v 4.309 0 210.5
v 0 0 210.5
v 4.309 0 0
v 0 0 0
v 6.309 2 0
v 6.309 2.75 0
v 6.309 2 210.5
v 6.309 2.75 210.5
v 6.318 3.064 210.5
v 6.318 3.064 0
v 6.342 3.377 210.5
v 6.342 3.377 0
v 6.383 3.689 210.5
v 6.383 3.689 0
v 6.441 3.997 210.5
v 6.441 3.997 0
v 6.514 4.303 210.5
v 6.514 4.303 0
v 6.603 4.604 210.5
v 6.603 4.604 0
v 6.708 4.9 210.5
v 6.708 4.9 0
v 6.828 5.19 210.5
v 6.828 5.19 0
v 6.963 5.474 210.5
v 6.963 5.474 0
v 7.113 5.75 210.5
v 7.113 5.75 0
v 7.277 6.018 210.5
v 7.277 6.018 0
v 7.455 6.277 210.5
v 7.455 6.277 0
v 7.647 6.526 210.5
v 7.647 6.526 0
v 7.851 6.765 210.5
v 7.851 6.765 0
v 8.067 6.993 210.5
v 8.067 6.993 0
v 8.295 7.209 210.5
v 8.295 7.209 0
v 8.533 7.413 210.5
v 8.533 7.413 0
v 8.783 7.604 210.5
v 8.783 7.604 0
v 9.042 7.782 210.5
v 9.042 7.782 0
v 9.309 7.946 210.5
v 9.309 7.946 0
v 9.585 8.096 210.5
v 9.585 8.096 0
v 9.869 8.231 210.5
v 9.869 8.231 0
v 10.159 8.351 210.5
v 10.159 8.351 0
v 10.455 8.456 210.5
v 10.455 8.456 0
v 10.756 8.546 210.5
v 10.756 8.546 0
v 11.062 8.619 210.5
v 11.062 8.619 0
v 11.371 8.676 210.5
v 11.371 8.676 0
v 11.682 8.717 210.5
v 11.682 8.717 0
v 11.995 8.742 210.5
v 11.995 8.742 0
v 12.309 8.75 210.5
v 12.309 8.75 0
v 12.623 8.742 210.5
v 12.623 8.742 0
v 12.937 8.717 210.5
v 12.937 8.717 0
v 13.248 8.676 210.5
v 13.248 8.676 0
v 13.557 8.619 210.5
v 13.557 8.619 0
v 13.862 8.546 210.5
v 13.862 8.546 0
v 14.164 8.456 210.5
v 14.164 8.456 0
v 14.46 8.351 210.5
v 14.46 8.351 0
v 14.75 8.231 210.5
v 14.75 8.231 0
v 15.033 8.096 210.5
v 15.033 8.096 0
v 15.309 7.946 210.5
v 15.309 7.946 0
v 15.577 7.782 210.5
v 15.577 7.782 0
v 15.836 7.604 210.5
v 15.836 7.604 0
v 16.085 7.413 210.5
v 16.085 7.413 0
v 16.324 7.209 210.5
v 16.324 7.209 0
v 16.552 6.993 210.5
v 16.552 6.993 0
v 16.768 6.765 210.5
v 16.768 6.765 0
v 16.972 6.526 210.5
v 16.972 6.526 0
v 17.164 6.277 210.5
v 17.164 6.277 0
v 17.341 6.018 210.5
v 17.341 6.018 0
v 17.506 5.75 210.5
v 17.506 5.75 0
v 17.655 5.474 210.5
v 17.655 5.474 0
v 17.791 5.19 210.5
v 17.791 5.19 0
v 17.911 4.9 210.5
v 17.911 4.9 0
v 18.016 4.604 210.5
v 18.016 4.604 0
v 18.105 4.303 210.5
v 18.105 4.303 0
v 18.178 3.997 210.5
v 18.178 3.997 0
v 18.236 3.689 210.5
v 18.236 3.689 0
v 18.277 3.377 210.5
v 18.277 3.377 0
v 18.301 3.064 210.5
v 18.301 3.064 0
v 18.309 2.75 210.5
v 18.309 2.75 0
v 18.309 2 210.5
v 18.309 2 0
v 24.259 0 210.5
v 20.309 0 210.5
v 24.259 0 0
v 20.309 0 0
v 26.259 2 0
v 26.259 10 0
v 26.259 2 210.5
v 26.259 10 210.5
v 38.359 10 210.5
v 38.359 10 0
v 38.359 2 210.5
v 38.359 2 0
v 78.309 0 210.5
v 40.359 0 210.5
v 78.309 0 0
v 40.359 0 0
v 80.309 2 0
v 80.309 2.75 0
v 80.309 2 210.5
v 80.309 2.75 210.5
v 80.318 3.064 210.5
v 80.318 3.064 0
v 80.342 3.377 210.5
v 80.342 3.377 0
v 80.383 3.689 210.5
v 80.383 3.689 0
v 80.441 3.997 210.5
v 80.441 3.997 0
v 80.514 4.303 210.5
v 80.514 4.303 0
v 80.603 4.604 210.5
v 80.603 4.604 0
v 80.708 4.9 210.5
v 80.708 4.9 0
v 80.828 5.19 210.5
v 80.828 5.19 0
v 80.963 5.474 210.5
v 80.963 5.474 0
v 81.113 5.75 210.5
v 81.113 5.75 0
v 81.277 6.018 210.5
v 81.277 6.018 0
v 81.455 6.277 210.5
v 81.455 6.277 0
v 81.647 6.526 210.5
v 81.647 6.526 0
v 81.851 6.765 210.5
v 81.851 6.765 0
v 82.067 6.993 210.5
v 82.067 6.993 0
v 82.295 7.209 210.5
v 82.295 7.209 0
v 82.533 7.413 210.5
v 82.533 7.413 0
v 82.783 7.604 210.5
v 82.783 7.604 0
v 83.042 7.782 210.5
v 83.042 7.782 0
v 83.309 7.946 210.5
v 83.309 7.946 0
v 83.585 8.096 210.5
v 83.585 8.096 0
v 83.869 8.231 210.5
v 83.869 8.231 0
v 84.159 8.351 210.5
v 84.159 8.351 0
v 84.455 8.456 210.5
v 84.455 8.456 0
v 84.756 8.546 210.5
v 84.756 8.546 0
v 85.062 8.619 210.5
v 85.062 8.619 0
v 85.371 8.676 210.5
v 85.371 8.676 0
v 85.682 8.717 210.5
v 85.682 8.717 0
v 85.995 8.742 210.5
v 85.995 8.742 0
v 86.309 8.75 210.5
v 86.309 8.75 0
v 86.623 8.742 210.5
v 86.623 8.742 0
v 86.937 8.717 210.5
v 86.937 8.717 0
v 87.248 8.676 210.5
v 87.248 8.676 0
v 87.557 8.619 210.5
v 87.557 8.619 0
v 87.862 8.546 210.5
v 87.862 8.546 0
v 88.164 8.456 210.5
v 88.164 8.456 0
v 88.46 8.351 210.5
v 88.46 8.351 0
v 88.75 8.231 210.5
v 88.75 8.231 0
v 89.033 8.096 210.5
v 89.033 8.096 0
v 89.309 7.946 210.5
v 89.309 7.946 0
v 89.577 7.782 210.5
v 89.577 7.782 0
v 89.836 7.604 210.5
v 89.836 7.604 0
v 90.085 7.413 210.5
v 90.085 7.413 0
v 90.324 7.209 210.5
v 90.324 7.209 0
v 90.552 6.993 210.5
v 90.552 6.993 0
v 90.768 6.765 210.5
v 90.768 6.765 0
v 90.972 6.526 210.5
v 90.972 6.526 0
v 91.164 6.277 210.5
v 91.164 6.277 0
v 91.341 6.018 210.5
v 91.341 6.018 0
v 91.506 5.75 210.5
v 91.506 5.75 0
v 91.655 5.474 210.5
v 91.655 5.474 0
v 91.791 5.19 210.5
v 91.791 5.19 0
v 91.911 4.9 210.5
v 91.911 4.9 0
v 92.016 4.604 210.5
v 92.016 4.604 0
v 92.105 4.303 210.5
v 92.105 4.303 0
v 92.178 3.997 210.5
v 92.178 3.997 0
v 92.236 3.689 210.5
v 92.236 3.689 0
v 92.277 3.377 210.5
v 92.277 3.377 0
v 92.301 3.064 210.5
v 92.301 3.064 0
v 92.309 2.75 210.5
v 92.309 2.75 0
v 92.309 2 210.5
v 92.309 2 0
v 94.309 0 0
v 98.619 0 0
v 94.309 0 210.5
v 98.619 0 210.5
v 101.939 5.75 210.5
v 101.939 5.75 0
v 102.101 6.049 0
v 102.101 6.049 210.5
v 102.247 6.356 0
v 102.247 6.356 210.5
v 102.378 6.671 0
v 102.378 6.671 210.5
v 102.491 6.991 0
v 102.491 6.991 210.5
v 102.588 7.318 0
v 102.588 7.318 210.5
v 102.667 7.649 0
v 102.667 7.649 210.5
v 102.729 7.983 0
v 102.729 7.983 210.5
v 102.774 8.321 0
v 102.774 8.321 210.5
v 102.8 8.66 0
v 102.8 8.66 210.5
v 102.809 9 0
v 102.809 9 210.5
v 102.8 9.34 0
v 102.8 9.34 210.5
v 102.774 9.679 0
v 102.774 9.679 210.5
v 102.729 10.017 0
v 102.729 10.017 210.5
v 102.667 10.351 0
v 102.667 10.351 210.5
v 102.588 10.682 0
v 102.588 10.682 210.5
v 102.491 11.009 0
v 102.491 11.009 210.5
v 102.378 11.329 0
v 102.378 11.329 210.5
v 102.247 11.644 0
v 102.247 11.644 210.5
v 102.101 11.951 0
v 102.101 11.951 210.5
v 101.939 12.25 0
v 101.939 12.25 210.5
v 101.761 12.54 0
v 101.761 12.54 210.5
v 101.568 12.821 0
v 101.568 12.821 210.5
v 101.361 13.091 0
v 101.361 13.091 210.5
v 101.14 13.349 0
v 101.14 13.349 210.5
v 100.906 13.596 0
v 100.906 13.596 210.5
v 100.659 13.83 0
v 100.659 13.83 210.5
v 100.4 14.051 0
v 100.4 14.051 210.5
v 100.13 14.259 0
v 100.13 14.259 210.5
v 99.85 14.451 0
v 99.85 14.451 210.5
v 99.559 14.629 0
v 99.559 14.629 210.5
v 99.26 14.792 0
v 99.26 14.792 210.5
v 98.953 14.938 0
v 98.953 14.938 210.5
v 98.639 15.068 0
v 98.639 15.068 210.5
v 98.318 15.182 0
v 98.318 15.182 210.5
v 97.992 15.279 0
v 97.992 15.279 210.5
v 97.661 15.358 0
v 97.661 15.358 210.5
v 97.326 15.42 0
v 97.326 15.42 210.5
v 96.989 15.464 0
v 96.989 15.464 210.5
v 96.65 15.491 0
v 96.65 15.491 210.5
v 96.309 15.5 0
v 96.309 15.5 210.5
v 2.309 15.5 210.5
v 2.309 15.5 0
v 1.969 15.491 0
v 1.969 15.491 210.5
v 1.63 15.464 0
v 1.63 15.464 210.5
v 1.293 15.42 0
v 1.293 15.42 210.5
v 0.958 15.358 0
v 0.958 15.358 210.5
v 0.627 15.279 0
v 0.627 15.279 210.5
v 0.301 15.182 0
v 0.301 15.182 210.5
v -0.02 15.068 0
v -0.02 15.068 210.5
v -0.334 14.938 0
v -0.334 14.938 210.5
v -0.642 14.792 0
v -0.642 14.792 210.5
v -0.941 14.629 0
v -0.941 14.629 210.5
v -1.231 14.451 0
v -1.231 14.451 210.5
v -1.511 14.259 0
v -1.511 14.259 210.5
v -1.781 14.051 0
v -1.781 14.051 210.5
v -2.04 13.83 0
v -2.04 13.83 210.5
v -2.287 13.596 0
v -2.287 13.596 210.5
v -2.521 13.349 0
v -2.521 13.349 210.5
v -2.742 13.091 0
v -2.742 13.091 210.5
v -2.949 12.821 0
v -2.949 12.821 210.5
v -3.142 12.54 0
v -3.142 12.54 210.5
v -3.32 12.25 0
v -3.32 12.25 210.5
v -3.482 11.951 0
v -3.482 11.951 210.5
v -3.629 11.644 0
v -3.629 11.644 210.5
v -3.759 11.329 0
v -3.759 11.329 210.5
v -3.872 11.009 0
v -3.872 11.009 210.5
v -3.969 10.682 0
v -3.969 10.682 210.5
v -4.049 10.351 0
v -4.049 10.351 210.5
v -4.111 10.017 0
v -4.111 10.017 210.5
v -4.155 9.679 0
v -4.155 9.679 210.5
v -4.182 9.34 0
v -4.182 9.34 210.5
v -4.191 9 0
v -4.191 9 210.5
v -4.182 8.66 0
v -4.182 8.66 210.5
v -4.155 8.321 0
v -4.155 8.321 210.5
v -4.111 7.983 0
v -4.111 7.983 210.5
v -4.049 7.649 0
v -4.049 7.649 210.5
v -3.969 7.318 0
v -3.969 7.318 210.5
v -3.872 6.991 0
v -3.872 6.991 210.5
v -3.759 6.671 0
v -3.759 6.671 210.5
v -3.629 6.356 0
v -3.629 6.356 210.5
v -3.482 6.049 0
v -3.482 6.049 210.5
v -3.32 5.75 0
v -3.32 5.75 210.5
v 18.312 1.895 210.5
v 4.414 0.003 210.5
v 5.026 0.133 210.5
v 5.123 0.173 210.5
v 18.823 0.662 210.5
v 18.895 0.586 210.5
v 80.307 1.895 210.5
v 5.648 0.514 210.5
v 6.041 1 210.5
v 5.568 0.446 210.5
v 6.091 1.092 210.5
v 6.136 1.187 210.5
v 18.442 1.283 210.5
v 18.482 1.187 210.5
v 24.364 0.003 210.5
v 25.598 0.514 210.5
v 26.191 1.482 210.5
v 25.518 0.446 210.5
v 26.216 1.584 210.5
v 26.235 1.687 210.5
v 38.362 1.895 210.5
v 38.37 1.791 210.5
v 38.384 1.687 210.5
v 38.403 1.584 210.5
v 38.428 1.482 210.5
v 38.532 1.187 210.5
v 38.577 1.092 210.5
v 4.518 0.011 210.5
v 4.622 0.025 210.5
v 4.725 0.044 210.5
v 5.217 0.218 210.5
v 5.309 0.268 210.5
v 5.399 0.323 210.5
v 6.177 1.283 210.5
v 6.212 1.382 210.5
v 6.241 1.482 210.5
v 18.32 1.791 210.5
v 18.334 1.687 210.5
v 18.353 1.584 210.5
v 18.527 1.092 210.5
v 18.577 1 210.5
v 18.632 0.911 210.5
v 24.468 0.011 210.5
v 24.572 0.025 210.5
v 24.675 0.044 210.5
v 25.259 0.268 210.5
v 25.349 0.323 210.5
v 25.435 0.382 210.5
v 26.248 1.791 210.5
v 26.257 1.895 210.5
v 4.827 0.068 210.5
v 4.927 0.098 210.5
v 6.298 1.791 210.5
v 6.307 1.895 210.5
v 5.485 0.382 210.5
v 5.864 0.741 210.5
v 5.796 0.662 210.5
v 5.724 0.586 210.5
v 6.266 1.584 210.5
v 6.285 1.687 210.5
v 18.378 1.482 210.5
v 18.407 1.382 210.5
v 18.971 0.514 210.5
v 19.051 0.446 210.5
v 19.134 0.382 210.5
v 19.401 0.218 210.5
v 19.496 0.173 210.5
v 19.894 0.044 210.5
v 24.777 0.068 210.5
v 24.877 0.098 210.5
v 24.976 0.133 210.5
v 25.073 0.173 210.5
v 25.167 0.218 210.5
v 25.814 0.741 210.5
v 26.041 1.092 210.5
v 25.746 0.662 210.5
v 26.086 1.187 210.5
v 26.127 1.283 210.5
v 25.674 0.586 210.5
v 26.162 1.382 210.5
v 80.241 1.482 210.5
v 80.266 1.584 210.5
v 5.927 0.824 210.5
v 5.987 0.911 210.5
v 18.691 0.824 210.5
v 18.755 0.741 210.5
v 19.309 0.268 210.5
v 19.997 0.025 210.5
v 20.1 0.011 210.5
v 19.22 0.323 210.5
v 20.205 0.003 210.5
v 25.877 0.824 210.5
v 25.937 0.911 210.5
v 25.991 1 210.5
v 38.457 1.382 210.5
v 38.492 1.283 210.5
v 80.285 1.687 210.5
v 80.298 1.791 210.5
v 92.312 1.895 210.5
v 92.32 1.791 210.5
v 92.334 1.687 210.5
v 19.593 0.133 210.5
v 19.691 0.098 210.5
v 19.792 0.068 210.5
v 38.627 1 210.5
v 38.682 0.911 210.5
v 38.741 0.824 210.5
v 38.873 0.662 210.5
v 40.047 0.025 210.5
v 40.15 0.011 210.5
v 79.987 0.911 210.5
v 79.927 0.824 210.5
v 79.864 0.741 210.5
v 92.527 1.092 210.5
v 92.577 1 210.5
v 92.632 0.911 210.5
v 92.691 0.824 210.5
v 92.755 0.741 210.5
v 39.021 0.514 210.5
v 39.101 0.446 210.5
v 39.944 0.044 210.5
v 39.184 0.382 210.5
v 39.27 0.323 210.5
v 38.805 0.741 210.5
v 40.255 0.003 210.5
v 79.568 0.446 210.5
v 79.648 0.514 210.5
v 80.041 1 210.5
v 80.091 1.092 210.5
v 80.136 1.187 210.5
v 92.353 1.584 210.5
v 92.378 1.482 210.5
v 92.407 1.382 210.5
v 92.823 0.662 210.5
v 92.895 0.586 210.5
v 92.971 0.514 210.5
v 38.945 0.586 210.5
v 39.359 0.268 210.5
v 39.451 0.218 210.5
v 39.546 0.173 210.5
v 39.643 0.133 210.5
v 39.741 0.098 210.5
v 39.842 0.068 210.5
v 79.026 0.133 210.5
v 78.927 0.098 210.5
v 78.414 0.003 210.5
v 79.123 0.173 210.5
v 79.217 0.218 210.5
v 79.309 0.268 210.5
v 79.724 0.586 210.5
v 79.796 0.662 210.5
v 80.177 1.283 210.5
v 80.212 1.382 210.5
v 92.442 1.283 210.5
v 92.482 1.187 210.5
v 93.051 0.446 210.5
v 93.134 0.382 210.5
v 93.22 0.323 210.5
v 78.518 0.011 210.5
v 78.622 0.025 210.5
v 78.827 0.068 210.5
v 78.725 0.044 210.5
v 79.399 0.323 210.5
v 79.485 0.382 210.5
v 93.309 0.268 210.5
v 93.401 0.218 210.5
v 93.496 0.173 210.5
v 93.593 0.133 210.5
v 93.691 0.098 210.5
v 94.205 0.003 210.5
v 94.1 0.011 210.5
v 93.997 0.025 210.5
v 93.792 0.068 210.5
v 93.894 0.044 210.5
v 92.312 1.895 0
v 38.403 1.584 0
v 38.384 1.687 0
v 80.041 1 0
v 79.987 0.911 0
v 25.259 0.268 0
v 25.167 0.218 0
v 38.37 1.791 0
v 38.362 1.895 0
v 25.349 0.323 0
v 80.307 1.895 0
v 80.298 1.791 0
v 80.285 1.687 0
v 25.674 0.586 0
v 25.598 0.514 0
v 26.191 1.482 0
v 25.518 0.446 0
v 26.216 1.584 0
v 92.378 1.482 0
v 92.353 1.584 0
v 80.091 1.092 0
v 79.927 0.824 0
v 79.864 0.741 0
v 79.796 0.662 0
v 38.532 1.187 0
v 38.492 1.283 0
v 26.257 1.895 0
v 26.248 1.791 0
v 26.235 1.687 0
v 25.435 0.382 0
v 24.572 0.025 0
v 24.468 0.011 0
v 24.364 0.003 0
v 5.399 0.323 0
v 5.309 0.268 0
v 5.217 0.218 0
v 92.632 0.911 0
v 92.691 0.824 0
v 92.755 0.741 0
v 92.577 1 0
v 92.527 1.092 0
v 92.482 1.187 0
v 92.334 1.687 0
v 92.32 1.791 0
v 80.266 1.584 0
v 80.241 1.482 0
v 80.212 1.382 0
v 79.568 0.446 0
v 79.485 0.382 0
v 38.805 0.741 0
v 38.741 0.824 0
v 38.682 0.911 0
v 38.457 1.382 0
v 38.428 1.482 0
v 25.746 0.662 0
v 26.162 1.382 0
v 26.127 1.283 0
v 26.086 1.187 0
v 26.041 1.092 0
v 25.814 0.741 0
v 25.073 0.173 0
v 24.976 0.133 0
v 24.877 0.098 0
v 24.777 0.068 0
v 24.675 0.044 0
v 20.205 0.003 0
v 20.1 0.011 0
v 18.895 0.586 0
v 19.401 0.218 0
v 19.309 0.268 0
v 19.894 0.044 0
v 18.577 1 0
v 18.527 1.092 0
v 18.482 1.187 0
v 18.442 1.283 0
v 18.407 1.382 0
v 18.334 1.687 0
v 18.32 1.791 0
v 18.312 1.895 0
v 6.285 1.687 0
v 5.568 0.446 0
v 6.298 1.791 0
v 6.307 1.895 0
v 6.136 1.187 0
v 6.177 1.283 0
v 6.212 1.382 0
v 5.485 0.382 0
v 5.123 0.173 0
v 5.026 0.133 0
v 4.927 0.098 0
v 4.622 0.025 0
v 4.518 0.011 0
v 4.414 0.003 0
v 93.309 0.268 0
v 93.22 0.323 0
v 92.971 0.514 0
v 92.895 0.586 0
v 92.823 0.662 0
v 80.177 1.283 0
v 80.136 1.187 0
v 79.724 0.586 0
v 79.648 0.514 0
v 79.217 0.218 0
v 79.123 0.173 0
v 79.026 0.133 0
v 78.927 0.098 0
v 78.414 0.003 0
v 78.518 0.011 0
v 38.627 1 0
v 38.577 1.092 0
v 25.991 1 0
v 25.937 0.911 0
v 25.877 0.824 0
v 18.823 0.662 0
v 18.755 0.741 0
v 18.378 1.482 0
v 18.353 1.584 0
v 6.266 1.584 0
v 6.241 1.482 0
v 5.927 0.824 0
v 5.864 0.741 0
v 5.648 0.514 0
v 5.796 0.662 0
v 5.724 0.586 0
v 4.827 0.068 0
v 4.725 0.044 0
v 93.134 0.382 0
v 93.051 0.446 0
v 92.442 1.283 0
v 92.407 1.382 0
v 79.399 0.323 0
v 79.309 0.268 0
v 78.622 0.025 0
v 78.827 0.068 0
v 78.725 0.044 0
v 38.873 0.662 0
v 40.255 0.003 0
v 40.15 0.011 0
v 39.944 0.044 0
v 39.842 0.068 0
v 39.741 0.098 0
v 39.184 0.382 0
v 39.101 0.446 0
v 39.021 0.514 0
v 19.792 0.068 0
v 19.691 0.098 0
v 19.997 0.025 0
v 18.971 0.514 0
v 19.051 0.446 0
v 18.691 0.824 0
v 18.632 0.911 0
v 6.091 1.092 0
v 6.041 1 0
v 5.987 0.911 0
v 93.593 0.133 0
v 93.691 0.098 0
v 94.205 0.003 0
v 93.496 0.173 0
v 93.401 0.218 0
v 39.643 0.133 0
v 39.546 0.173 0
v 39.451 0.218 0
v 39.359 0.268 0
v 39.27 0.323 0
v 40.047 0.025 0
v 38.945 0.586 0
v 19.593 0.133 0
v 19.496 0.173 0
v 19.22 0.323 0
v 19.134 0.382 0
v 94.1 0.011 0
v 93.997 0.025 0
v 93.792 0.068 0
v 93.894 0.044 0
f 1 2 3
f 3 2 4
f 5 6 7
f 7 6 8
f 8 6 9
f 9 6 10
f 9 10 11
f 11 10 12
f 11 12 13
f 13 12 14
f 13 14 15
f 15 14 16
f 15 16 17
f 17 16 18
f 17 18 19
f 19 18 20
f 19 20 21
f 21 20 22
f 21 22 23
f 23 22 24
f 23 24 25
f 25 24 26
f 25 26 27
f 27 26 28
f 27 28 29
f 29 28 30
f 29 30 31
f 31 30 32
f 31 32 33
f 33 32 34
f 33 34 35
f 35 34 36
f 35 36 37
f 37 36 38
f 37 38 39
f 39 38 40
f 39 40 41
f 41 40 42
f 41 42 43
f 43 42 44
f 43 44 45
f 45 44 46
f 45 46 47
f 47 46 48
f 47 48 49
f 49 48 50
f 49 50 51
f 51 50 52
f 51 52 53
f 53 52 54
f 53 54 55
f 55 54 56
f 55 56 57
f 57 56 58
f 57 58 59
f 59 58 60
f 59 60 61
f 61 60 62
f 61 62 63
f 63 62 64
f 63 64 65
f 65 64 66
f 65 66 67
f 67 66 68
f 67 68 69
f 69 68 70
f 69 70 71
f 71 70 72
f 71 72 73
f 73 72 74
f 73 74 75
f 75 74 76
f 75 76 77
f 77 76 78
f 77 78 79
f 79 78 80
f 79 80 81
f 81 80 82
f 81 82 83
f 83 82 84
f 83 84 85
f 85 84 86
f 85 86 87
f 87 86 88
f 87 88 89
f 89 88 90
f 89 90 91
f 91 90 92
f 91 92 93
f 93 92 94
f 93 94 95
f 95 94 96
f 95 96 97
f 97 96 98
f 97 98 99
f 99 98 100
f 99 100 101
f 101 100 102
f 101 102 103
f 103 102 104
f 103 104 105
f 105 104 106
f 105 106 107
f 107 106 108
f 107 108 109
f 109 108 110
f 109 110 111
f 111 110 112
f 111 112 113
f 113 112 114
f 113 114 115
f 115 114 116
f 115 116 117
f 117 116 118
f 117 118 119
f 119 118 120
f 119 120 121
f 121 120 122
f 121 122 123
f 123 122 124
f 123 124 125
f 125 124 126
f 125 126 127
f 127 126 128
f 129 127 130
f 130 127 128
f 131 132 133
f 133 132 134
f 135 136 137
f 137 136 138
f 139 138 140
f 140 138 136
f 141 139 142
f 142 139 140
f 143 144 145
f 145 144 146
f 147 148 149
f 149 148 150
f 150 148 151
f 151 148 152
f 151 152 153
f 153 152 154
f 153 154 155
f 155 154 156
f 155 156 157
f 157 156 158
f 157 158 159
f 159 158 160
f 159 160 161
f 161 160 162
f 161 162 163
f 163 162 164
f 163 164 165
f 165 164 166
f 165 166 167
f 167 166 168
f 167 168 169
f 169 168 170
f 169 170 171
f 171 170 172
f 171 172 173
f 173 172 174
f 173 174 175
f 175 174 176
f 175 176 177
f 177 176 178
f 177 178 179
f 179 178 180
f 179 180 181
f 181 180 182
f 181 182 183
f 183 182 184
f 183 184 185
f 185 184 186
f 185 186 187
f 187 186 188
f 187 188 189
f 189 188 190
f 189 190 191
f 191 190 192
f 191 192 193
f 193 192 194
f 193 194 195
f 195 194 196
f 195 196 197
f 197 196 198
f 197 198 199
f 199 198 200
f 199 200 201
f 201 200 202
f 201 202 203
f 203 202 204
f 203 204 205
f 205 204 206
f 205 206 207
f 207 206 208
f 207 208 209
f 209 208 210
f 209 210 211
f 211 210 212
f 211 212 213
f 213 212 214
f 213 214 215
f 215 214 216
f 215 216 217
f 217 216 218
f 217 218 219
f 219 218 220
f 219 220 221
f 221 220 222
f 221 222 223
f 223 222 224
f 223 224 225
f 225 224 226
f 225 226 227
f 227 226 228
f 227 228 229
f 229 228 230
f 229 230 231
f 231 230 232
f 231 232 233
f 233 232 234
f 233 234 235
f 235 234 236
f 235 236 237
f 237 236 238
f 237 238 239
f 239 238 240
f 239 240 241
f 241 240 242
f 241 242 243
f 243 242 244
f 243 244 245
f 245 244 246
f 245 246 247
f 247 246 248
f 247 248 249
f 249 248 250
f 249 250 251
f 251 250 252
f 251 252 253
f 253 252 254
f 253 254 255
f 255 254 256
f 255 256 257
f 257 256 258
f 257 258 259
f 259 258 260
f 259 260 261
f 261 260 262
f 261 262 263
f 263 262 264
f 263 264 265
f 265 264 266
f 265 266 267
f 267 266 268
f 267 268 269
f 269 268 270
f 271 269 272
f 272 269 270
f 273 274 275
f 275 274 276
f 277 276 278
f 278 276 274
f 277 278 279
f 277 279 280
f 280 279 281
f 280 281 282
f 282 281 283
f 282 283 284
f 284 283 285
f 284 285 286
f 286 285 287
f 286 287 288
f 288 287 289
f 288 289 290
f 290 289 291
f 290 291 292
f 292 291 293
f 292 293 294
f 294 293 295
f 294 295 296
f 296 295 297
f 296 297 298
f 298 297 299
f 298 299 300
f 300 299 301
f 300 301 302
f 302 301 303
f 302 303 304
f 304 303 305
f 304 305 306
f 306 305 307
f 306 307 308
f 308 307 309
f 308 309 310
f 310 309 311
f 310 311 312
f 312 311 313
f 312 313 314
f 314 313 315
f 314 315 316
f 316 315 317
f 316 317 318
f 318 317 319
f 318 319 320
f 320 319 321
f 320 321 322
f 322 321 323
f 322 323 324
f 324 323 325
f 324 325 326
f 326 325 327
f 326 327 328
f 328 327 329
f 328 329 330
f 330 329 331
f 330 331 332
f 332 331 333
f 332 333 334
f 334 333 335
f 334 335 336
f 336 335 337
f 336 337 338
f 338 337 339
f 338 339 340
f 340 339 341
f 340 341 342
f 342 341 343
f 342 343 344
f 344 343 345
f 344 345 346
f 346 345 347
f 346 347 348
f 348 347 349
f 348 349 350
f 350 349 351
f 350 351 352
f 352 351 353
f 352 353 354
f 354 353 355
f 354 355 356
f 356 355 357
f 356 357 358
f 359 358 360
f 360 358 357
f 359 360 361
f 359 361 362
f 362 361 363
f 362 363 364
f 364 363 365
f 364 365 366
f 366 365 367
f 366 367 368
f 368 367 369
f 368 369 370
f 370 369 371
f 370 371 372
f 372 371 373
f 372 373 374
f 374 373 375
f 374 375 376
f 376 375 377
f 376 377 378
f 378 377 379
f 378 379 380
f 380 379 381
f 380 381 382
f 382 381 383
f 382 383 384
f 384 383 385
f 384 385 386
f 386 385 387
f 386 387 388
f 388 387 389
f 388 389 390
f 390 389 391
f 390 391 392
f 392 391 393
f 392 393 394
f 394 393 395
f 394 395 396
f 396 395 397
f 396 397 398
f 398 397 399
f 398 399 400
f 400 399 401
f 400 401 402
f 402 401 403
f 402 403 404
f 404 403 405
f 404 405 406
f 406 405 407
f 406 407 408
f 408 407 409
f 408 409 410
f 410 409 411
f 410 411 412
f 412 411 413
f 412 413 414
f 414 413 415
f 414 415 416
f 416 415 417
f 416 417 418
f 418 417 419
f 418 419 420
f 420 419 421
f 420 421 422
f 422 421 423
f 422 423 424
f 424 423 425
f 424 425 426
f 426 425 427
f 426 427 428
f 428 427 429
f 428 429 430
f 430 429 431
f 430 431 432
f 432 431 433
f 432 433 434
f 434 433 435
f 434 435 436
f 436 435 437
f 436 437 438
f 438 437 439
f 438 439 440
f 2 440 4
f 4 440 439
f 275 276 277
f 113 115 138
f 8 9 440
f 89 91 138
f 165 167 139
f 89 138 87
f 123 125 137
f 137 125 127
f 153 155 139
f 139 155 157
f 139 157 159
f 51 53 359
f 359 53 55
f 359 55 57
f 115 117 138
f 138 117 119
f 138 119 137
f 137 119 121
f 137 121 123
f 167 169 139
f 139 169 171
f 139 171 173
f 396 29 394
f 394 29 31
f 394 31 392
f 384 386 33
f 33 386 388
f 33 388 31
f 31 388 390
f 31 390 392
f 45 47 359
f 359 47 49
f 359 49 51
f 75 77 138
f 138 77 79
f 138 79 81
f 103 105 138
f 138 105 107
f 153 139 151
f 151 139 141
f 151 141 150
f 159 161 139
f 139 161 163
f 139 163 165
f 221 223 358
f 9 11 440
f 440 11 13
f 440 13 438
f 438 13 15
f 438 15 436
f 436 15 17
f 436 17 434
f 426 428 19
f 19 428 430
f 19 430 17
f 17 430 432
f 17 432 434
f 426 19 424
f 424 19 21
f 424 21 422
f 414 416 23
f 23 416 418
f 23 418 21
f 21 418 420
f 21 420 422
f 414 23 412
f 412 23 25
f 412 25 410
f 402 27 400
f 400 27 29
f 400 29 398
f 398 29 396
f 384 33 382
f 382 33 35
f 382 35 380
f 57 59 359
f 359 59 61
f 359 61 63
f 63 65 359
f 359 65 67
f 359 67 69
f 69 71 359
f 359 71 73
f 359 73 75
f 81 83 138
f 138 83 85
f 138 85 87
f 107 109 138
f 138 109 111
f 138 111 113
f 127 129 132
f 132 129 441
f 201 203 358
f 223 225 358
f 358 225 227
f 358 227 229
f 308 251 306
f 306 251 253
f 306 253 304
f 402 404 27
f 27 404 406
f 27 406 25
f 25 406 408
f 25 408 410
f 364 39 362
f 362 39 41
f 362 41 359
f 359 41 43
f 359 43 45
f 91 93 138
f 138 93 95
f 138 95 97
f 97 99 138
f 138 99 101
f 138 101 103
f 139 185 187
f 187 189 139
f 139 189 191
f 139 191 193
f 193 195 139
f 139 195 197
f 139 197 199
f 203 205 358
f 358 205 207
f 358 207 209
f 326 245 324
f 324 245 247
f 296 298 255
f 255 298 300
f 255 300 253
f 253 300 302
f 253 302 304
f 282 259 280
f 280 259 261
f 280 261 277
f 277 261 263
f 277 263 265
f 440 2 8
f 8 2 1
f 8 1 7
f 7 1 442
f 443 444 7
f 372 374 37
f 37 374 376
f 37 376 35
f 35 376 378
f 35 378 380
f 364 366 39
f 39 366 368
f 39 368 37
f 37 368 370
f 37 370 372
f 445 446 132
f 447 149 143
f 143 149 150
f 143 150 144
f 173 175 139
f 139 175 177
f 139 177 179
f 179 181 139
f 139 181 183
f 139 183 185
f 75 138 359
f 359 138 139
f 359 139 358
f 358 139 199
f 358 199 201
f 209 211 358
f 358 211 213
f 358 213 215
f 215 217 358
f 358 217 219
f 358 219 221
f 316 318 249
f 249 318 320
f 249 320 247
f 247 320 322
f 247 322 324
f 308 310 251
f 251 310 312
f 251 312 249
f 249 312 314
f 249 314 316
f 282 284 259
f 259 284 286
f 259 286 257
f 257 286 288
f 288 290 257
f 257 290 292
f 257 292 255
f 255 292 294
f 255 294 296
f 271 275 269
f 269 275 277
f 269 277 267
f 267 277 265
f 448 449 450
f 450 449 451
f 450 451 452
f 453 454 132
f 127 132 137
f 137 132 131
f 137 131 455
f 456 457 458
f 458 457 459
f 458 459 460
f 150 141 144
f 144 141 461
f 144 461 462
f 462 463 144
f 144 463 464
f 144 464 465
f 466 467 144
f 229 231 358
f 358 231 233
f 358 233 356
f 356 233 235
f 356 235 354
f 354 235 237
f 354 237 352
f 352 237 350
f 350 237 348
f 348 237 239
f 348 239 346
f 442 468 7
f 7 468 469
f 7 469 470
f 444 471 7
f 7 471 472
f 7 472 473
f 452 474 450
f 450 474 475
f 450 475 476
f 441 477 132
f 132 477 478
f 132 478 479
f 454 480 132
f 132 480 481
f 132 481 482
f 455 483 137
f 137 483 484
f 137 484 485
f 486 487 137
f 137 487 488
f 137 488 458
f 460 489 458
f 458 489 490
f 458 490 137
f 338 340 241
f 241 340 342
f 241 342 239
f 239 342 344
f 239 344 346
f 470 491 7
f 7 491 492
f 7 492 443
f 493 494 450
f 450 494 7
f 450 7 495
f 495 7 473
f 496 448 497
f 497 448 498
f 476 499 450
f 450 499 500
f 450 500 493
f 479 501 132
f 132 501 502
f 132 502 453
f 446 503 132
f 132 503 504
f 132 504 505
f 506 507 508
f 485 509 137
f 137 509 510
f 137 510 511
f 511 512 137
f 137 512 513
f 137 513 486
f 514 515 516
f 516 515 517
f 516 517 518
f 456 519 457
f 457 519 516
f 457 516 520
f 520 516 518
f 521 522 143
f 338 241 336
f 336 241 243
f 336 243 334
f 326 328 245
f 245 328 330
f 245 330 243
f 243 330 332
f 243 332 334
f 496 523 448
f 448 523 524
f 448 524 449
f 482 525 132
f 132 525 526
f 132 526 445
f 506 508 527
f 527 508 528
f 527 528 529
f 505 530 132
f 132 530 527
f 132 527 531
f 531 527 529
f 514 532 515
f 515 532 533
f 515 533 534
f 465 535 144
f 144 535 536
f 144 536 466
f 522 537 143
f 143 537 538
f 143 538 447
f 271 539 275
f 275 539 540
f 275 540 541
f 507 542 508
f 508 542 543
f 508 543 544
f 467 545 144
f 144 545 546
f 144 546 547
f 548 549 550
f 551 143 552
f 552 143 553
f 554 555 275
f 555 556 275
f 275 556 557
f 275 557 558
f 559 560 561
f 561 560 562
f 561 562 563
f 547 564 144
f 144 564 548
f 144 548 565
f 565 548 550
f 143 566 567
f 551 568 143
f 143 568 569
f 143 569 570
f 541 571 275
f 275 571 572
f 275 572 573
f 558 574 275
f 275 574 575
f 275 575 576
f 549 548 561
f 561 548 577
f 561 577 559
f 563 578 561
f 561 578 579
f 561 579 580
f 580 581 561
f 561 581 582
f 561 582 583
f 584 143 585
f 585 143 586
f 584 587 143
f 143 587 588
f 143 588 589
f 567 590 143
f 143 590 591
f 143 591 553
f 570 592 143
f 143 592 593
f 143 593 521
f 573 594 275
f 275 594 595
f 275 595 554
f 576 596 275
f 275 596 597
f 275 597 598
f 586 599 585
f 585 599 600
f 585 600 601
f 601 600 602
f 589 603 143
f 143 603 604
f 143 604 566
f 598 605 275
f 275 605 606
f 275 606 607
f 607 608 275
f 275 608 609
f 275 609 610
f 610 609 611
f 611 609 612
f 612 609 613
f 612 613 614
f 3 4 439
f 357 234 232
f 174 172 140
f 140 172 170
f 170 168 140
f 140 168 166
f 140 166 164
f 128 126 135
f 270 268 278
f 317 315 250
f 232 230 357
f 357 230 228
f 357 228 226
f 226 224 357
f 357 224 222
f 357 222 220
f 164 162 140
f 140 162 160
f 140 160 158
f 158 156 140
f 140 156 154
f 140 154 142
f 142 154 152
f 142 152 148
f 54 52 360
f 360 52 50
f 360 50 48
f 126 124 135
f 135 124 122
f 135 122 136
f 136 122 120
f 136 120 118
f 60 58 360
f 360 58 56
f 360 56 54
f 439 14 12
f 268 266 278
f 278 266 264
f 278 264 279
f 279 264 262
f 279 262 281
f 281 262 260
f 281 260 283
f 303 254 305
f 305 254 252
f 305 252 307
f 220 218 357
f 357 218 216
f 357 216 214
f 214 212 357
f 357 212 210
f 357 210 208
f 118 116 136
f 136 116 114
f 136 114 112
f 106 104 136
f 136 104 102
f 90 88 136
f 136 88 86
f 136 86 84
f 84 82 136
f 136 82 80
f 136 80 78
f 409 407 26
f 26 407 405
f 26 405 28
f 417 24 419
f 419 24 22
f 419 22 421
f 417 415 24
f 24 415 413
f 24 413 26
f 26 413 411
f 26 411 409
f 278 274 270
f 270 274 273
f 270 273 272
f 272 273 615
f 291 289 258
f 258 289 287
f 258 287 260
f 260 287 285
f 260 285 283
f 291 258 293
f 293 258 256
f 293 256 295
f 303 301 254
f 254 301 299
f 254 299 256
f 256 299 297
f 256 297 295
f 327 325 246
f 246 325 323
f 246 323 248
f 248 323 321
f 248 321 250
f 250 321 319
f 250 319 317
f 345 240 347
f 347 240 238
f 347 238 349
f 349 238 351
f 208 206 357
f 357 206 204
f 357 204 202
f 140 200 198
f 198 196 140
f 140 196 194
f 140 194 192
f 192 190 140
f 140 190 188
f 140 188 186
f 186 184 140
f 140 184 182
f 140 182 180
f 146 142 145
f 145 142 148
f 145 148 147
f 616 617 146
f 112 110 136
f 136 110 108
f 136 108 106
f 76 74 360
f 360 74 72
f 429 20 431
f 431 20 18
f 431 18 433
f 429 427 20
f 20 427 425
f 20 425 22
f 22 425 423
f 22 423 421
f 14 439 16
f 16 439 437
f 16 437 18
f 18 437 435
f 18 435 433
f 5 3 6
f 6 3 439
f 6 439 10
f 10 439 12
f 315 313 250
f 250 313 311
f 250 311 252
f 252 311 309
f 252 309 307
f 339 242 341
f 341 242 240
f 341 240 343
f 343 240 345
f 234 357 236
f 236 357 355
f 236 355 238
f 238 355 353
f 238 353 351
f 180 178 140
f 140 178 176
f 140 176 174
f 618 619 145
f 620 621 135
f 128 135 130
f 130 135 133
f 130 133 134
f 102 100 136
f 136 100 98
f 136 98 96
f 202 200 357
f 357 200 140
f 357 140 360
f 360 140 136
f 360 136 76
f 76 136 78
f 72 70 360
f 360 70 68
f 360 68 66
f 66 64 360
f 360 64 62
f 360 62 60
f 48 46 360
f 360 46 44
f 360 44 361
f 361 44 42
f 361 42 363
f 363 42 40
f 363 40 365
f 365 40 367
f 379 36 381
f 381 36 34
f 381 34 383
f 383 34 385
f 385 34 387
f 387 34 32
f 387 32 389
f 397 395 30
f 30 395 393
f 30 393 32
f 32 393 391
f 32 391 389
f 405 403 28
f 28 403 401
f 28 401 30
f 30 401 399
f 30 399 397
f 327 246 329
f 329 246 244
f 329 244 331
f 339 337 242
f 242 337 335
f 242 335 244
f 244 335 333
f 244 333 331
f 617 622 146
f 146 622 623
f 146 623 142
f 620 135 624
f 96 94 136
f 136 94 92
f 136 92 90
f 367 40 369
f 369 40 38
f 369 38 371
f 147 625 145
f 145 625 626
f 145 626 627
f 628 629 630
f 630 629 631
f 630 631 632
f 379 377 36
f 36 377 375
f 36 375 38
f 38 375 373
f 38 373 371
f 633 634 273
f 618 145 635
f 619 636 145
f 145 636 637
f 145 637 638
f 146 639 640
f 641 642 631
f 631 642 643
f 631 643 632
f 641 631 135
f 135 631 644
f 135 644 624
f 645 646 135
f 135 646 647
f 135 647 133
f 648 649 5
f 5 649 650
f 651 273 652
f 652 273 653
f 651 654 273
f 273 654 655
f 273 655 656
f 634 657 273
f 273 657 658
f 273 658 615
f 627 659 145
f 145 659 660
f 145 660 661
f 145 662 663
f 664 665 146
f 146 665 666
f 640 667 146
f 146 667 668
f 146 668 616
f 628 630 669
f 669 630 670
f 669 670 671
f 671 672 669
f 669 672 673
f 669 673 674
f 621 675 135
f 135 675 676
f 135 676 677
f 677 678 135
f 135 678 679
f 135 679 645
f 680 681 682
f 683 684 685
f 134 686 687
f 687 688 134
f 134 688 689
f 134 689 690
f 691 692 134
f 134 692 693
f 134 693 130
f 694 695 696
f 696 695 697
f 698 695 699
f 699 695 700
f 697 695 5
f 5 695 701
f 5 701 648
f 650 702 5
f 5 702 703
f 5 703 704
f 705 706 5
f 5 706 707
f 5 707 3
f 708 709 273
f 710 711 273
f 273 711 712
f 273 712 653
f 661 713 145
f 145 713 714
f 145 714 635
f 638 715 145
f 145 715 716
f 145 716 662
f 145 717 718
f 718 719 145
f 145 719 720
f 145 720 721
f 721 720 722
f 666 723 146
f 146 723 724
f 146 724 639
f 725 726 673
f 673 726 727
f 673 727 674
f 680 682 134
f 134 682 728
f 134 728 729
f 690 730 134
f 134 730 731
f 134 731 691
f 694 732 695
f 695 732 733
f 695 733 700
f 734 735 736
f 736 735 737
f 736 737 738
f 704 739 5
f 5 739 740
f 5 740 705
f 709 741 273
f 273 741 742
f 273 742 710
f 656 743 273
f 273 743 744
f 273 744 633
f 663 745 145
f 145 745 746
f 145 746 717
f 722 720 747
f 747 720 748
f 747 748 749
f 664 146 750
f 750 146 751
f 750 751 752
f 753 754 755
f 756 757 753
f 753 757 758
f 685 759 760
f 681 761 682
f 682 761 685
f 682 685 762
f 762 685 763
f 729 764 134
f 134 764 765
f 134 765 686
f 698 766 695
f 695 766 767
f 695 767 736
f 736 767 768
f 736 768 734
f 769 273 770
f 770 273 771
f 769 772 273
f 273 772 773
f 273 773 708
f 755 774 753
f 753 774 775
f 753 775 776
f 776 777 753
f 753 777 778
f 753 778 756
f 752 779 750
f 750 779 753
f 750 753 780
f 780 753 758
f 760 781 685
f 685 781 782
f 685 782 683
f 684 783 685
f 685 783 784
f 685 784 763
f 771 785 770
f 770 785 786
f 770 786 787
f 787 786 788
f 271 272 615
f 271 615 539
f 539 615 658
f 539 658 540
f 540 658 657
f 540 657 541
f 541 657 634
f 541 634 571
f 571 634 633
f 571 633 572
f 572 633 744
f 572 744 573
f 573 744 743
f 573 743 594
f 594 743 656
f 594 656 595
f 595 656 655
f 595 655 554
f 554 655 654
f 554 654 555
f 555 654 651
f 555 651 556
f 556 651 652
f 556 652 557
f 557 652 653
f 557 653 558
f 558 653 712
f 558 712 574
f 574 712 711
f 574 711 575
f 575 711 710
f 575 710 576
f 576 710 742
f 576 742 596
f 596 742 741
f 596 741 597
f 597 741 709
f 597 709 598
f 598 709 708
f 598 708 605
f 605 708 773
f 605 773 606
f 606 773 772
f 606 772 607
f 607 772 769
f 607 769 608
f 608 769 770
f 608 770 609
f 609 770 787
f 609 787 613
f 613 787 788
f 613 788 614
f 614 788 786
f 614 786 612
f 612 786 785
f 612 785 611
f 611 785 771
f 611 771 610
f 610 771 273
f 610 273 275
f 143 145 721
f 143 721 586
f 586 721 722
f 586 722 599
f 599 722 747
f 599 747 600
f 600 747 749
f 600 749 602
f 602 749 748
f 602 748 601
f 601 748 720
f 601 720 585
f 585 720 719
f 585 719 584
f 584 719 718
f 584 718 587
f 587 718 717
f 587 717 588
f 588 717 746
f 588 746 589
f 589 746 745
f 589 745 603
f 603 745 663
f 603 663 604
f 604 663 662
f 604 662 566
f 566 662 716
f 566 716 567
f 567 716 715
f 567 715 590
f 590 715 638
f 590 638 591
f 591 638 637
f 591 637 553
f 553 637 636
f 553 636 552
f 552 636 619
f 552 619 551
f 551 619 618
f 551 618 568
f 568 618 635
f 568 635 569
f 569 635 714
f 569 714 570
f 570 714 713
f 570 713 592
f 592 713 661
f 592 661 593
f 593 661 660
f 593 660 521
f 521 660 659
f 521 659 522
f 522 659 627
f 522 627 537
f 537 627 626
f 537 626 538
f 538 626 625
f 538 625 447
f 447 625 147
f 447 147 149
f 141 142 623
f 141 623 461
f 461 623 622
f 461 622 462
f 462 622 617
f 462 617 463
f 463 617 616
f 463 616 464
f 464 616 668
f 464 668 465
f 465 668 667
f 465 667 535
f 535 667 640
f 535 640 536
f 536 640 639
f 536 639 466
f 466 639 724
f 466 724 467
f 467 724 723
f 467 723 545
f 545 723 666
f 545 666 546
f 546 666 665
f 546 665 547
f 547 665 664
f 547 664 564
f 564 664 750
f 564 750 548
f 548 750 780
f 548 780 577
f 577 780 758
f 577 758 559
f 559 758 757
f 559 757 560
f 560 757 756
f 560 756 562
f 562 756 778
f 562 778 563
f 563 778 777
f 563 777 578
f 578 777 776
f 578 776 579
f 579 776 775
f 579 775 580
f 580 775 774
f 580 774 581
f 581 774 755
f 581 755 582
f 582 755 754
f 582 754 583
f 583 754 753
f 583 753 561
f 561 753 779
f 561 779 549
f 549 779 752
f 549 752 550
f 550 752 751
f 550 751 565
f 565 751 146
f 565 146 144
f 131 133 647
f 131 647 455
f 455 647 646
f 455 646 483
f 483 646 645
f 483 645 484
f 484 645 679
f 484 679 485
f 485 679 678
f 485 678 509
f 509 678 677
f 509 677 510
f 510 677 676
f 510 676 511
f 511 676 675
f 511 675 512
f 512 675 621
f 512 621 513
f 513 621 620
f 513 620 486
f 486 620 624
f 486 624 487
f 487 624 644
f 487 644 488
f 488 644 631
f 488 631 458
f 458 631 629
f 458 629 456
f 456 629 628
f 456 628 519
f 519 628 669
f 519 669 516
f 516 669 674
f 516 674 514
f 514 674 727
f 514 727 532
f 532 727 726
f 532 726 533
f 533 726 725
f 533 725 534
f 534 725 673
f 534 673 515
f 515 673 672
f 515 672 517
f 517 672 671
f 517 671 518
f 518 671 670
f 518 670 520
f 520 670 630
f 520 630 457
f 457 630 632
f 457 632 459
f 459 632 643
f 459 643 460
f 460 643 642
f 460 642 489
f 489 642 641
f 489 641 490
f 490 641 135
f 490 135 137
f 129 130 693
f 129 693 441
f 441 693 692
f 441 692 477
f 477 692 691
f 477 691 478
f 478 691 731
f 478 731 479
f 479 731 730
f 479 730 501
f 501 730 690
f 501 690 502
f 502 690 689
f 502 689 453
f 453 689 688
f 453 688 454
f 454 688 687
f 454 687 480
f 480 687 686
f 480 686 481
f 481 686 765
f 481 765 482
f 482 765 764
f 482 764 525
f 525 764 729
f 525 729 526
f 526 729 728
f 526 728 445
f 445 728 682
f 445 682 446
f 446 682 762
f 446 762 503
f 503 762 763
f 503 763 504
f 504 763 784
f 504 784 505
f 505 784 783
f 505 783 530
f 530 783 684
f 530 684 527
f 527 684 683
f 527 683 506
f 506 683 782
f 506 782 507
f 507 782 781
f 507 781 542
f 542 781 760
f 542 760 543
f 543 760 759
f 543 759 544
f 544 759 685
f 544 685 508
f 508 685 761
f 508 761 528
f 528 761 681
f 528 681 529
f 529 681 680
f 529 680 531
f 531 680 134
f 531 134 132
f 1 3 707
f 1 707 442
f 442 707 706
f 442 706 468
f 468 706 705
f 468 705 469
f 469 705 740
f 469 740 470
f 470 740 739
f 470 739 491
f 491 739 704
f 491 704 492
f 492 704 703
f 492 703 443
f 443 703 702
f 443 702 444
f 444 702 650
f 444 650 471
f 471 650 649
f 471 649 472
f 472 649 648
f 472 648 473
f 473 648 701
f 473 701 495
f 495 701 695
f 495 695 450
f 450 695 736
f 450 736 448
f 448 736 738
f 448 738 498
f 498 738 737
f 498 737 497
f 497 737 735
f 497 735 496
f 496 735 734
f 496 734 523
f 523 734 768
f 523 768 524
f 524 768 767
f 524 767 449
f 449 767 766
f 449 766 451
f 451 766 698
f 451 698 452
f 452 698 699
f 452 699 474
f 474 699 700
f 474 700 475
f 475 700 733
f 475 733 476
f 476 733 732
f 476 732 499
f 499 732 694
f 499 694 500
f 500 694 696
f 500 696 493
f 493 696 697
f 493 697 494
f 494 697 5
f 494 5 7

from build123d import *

# Parameters (mm, degrees)
BOSS_EXTRUDE1_DEPTH = 210.5
FILLET1_R           = 2


with BuildPart() as part:
    # Sketch1 → Boss-Extrude1 (new body)
    with BuildSketch(Plane.XY):
        with BuildLine():
            Line((0, 0), (-3.319764048, 5.75))
            ThreePointArc((-3.319764048, 5.75), (-3.319764048, 12.25), (2.309401077, 15.5))
            Line((2.309401077, 15.5), (96.309401077, 15.5))
            ThreePointArc((96.309401077, 15.5), (101.938566201, 12.25), (101.938566201, 5.75))
            Line((101.938566201, 5.75), (98.618802154, 0))
            Line((98.618802154, 0), (92.309401077, 0))
            Line((92.309401077, 0), (92.309401077, 2.75))
            ThreePointArc((92.309401077, 2.75), (86.309401077, 8.75), (80.309401077, 2.75))
            Line((80.309401077, 2.75), (80.309401077, 0))
            Line((80.309401077, 0), (38.359401077, 0))
            Line((38.359401077, 0), (38.359401077, 10))
            Line((38.359401077, 10), (26.259401077, 10))
            Line((26.259401077, 10), (26.259401077, 0))
            Line((26.259401077, 0), (18.309401077, 0))
            Line((18.309401077, 0), (18.309401077, 2.75))
            ThreePointArc((18.309401077, 2.75), (12.309401077, 8.75), (6.309401077, 2.75))
            Line((6.309401077, 2.75), (6.309401077, 0))
            Line((6.309401077, 0), (0, 0))
        make_face()
    extrude(amount=BOSS_EXTRUDE1_DEPTH)

    # Fillet1
    fillet1_edges = [part.edges().sort_by_distance(p)[0] for p in [
        (92.309401077, 0, 105.25),
        (80.309401077, 0, 105.25),
        (38.359401077, 0, 105.25),
        (26.259401077, 0, 105.25),
        (18.309401077, 0, 105.25),
        (6.309401077, 0, 105.25),
    ]]
    fillet(fillet1_edges, radius=FILLET1_R)


solid = part.part
